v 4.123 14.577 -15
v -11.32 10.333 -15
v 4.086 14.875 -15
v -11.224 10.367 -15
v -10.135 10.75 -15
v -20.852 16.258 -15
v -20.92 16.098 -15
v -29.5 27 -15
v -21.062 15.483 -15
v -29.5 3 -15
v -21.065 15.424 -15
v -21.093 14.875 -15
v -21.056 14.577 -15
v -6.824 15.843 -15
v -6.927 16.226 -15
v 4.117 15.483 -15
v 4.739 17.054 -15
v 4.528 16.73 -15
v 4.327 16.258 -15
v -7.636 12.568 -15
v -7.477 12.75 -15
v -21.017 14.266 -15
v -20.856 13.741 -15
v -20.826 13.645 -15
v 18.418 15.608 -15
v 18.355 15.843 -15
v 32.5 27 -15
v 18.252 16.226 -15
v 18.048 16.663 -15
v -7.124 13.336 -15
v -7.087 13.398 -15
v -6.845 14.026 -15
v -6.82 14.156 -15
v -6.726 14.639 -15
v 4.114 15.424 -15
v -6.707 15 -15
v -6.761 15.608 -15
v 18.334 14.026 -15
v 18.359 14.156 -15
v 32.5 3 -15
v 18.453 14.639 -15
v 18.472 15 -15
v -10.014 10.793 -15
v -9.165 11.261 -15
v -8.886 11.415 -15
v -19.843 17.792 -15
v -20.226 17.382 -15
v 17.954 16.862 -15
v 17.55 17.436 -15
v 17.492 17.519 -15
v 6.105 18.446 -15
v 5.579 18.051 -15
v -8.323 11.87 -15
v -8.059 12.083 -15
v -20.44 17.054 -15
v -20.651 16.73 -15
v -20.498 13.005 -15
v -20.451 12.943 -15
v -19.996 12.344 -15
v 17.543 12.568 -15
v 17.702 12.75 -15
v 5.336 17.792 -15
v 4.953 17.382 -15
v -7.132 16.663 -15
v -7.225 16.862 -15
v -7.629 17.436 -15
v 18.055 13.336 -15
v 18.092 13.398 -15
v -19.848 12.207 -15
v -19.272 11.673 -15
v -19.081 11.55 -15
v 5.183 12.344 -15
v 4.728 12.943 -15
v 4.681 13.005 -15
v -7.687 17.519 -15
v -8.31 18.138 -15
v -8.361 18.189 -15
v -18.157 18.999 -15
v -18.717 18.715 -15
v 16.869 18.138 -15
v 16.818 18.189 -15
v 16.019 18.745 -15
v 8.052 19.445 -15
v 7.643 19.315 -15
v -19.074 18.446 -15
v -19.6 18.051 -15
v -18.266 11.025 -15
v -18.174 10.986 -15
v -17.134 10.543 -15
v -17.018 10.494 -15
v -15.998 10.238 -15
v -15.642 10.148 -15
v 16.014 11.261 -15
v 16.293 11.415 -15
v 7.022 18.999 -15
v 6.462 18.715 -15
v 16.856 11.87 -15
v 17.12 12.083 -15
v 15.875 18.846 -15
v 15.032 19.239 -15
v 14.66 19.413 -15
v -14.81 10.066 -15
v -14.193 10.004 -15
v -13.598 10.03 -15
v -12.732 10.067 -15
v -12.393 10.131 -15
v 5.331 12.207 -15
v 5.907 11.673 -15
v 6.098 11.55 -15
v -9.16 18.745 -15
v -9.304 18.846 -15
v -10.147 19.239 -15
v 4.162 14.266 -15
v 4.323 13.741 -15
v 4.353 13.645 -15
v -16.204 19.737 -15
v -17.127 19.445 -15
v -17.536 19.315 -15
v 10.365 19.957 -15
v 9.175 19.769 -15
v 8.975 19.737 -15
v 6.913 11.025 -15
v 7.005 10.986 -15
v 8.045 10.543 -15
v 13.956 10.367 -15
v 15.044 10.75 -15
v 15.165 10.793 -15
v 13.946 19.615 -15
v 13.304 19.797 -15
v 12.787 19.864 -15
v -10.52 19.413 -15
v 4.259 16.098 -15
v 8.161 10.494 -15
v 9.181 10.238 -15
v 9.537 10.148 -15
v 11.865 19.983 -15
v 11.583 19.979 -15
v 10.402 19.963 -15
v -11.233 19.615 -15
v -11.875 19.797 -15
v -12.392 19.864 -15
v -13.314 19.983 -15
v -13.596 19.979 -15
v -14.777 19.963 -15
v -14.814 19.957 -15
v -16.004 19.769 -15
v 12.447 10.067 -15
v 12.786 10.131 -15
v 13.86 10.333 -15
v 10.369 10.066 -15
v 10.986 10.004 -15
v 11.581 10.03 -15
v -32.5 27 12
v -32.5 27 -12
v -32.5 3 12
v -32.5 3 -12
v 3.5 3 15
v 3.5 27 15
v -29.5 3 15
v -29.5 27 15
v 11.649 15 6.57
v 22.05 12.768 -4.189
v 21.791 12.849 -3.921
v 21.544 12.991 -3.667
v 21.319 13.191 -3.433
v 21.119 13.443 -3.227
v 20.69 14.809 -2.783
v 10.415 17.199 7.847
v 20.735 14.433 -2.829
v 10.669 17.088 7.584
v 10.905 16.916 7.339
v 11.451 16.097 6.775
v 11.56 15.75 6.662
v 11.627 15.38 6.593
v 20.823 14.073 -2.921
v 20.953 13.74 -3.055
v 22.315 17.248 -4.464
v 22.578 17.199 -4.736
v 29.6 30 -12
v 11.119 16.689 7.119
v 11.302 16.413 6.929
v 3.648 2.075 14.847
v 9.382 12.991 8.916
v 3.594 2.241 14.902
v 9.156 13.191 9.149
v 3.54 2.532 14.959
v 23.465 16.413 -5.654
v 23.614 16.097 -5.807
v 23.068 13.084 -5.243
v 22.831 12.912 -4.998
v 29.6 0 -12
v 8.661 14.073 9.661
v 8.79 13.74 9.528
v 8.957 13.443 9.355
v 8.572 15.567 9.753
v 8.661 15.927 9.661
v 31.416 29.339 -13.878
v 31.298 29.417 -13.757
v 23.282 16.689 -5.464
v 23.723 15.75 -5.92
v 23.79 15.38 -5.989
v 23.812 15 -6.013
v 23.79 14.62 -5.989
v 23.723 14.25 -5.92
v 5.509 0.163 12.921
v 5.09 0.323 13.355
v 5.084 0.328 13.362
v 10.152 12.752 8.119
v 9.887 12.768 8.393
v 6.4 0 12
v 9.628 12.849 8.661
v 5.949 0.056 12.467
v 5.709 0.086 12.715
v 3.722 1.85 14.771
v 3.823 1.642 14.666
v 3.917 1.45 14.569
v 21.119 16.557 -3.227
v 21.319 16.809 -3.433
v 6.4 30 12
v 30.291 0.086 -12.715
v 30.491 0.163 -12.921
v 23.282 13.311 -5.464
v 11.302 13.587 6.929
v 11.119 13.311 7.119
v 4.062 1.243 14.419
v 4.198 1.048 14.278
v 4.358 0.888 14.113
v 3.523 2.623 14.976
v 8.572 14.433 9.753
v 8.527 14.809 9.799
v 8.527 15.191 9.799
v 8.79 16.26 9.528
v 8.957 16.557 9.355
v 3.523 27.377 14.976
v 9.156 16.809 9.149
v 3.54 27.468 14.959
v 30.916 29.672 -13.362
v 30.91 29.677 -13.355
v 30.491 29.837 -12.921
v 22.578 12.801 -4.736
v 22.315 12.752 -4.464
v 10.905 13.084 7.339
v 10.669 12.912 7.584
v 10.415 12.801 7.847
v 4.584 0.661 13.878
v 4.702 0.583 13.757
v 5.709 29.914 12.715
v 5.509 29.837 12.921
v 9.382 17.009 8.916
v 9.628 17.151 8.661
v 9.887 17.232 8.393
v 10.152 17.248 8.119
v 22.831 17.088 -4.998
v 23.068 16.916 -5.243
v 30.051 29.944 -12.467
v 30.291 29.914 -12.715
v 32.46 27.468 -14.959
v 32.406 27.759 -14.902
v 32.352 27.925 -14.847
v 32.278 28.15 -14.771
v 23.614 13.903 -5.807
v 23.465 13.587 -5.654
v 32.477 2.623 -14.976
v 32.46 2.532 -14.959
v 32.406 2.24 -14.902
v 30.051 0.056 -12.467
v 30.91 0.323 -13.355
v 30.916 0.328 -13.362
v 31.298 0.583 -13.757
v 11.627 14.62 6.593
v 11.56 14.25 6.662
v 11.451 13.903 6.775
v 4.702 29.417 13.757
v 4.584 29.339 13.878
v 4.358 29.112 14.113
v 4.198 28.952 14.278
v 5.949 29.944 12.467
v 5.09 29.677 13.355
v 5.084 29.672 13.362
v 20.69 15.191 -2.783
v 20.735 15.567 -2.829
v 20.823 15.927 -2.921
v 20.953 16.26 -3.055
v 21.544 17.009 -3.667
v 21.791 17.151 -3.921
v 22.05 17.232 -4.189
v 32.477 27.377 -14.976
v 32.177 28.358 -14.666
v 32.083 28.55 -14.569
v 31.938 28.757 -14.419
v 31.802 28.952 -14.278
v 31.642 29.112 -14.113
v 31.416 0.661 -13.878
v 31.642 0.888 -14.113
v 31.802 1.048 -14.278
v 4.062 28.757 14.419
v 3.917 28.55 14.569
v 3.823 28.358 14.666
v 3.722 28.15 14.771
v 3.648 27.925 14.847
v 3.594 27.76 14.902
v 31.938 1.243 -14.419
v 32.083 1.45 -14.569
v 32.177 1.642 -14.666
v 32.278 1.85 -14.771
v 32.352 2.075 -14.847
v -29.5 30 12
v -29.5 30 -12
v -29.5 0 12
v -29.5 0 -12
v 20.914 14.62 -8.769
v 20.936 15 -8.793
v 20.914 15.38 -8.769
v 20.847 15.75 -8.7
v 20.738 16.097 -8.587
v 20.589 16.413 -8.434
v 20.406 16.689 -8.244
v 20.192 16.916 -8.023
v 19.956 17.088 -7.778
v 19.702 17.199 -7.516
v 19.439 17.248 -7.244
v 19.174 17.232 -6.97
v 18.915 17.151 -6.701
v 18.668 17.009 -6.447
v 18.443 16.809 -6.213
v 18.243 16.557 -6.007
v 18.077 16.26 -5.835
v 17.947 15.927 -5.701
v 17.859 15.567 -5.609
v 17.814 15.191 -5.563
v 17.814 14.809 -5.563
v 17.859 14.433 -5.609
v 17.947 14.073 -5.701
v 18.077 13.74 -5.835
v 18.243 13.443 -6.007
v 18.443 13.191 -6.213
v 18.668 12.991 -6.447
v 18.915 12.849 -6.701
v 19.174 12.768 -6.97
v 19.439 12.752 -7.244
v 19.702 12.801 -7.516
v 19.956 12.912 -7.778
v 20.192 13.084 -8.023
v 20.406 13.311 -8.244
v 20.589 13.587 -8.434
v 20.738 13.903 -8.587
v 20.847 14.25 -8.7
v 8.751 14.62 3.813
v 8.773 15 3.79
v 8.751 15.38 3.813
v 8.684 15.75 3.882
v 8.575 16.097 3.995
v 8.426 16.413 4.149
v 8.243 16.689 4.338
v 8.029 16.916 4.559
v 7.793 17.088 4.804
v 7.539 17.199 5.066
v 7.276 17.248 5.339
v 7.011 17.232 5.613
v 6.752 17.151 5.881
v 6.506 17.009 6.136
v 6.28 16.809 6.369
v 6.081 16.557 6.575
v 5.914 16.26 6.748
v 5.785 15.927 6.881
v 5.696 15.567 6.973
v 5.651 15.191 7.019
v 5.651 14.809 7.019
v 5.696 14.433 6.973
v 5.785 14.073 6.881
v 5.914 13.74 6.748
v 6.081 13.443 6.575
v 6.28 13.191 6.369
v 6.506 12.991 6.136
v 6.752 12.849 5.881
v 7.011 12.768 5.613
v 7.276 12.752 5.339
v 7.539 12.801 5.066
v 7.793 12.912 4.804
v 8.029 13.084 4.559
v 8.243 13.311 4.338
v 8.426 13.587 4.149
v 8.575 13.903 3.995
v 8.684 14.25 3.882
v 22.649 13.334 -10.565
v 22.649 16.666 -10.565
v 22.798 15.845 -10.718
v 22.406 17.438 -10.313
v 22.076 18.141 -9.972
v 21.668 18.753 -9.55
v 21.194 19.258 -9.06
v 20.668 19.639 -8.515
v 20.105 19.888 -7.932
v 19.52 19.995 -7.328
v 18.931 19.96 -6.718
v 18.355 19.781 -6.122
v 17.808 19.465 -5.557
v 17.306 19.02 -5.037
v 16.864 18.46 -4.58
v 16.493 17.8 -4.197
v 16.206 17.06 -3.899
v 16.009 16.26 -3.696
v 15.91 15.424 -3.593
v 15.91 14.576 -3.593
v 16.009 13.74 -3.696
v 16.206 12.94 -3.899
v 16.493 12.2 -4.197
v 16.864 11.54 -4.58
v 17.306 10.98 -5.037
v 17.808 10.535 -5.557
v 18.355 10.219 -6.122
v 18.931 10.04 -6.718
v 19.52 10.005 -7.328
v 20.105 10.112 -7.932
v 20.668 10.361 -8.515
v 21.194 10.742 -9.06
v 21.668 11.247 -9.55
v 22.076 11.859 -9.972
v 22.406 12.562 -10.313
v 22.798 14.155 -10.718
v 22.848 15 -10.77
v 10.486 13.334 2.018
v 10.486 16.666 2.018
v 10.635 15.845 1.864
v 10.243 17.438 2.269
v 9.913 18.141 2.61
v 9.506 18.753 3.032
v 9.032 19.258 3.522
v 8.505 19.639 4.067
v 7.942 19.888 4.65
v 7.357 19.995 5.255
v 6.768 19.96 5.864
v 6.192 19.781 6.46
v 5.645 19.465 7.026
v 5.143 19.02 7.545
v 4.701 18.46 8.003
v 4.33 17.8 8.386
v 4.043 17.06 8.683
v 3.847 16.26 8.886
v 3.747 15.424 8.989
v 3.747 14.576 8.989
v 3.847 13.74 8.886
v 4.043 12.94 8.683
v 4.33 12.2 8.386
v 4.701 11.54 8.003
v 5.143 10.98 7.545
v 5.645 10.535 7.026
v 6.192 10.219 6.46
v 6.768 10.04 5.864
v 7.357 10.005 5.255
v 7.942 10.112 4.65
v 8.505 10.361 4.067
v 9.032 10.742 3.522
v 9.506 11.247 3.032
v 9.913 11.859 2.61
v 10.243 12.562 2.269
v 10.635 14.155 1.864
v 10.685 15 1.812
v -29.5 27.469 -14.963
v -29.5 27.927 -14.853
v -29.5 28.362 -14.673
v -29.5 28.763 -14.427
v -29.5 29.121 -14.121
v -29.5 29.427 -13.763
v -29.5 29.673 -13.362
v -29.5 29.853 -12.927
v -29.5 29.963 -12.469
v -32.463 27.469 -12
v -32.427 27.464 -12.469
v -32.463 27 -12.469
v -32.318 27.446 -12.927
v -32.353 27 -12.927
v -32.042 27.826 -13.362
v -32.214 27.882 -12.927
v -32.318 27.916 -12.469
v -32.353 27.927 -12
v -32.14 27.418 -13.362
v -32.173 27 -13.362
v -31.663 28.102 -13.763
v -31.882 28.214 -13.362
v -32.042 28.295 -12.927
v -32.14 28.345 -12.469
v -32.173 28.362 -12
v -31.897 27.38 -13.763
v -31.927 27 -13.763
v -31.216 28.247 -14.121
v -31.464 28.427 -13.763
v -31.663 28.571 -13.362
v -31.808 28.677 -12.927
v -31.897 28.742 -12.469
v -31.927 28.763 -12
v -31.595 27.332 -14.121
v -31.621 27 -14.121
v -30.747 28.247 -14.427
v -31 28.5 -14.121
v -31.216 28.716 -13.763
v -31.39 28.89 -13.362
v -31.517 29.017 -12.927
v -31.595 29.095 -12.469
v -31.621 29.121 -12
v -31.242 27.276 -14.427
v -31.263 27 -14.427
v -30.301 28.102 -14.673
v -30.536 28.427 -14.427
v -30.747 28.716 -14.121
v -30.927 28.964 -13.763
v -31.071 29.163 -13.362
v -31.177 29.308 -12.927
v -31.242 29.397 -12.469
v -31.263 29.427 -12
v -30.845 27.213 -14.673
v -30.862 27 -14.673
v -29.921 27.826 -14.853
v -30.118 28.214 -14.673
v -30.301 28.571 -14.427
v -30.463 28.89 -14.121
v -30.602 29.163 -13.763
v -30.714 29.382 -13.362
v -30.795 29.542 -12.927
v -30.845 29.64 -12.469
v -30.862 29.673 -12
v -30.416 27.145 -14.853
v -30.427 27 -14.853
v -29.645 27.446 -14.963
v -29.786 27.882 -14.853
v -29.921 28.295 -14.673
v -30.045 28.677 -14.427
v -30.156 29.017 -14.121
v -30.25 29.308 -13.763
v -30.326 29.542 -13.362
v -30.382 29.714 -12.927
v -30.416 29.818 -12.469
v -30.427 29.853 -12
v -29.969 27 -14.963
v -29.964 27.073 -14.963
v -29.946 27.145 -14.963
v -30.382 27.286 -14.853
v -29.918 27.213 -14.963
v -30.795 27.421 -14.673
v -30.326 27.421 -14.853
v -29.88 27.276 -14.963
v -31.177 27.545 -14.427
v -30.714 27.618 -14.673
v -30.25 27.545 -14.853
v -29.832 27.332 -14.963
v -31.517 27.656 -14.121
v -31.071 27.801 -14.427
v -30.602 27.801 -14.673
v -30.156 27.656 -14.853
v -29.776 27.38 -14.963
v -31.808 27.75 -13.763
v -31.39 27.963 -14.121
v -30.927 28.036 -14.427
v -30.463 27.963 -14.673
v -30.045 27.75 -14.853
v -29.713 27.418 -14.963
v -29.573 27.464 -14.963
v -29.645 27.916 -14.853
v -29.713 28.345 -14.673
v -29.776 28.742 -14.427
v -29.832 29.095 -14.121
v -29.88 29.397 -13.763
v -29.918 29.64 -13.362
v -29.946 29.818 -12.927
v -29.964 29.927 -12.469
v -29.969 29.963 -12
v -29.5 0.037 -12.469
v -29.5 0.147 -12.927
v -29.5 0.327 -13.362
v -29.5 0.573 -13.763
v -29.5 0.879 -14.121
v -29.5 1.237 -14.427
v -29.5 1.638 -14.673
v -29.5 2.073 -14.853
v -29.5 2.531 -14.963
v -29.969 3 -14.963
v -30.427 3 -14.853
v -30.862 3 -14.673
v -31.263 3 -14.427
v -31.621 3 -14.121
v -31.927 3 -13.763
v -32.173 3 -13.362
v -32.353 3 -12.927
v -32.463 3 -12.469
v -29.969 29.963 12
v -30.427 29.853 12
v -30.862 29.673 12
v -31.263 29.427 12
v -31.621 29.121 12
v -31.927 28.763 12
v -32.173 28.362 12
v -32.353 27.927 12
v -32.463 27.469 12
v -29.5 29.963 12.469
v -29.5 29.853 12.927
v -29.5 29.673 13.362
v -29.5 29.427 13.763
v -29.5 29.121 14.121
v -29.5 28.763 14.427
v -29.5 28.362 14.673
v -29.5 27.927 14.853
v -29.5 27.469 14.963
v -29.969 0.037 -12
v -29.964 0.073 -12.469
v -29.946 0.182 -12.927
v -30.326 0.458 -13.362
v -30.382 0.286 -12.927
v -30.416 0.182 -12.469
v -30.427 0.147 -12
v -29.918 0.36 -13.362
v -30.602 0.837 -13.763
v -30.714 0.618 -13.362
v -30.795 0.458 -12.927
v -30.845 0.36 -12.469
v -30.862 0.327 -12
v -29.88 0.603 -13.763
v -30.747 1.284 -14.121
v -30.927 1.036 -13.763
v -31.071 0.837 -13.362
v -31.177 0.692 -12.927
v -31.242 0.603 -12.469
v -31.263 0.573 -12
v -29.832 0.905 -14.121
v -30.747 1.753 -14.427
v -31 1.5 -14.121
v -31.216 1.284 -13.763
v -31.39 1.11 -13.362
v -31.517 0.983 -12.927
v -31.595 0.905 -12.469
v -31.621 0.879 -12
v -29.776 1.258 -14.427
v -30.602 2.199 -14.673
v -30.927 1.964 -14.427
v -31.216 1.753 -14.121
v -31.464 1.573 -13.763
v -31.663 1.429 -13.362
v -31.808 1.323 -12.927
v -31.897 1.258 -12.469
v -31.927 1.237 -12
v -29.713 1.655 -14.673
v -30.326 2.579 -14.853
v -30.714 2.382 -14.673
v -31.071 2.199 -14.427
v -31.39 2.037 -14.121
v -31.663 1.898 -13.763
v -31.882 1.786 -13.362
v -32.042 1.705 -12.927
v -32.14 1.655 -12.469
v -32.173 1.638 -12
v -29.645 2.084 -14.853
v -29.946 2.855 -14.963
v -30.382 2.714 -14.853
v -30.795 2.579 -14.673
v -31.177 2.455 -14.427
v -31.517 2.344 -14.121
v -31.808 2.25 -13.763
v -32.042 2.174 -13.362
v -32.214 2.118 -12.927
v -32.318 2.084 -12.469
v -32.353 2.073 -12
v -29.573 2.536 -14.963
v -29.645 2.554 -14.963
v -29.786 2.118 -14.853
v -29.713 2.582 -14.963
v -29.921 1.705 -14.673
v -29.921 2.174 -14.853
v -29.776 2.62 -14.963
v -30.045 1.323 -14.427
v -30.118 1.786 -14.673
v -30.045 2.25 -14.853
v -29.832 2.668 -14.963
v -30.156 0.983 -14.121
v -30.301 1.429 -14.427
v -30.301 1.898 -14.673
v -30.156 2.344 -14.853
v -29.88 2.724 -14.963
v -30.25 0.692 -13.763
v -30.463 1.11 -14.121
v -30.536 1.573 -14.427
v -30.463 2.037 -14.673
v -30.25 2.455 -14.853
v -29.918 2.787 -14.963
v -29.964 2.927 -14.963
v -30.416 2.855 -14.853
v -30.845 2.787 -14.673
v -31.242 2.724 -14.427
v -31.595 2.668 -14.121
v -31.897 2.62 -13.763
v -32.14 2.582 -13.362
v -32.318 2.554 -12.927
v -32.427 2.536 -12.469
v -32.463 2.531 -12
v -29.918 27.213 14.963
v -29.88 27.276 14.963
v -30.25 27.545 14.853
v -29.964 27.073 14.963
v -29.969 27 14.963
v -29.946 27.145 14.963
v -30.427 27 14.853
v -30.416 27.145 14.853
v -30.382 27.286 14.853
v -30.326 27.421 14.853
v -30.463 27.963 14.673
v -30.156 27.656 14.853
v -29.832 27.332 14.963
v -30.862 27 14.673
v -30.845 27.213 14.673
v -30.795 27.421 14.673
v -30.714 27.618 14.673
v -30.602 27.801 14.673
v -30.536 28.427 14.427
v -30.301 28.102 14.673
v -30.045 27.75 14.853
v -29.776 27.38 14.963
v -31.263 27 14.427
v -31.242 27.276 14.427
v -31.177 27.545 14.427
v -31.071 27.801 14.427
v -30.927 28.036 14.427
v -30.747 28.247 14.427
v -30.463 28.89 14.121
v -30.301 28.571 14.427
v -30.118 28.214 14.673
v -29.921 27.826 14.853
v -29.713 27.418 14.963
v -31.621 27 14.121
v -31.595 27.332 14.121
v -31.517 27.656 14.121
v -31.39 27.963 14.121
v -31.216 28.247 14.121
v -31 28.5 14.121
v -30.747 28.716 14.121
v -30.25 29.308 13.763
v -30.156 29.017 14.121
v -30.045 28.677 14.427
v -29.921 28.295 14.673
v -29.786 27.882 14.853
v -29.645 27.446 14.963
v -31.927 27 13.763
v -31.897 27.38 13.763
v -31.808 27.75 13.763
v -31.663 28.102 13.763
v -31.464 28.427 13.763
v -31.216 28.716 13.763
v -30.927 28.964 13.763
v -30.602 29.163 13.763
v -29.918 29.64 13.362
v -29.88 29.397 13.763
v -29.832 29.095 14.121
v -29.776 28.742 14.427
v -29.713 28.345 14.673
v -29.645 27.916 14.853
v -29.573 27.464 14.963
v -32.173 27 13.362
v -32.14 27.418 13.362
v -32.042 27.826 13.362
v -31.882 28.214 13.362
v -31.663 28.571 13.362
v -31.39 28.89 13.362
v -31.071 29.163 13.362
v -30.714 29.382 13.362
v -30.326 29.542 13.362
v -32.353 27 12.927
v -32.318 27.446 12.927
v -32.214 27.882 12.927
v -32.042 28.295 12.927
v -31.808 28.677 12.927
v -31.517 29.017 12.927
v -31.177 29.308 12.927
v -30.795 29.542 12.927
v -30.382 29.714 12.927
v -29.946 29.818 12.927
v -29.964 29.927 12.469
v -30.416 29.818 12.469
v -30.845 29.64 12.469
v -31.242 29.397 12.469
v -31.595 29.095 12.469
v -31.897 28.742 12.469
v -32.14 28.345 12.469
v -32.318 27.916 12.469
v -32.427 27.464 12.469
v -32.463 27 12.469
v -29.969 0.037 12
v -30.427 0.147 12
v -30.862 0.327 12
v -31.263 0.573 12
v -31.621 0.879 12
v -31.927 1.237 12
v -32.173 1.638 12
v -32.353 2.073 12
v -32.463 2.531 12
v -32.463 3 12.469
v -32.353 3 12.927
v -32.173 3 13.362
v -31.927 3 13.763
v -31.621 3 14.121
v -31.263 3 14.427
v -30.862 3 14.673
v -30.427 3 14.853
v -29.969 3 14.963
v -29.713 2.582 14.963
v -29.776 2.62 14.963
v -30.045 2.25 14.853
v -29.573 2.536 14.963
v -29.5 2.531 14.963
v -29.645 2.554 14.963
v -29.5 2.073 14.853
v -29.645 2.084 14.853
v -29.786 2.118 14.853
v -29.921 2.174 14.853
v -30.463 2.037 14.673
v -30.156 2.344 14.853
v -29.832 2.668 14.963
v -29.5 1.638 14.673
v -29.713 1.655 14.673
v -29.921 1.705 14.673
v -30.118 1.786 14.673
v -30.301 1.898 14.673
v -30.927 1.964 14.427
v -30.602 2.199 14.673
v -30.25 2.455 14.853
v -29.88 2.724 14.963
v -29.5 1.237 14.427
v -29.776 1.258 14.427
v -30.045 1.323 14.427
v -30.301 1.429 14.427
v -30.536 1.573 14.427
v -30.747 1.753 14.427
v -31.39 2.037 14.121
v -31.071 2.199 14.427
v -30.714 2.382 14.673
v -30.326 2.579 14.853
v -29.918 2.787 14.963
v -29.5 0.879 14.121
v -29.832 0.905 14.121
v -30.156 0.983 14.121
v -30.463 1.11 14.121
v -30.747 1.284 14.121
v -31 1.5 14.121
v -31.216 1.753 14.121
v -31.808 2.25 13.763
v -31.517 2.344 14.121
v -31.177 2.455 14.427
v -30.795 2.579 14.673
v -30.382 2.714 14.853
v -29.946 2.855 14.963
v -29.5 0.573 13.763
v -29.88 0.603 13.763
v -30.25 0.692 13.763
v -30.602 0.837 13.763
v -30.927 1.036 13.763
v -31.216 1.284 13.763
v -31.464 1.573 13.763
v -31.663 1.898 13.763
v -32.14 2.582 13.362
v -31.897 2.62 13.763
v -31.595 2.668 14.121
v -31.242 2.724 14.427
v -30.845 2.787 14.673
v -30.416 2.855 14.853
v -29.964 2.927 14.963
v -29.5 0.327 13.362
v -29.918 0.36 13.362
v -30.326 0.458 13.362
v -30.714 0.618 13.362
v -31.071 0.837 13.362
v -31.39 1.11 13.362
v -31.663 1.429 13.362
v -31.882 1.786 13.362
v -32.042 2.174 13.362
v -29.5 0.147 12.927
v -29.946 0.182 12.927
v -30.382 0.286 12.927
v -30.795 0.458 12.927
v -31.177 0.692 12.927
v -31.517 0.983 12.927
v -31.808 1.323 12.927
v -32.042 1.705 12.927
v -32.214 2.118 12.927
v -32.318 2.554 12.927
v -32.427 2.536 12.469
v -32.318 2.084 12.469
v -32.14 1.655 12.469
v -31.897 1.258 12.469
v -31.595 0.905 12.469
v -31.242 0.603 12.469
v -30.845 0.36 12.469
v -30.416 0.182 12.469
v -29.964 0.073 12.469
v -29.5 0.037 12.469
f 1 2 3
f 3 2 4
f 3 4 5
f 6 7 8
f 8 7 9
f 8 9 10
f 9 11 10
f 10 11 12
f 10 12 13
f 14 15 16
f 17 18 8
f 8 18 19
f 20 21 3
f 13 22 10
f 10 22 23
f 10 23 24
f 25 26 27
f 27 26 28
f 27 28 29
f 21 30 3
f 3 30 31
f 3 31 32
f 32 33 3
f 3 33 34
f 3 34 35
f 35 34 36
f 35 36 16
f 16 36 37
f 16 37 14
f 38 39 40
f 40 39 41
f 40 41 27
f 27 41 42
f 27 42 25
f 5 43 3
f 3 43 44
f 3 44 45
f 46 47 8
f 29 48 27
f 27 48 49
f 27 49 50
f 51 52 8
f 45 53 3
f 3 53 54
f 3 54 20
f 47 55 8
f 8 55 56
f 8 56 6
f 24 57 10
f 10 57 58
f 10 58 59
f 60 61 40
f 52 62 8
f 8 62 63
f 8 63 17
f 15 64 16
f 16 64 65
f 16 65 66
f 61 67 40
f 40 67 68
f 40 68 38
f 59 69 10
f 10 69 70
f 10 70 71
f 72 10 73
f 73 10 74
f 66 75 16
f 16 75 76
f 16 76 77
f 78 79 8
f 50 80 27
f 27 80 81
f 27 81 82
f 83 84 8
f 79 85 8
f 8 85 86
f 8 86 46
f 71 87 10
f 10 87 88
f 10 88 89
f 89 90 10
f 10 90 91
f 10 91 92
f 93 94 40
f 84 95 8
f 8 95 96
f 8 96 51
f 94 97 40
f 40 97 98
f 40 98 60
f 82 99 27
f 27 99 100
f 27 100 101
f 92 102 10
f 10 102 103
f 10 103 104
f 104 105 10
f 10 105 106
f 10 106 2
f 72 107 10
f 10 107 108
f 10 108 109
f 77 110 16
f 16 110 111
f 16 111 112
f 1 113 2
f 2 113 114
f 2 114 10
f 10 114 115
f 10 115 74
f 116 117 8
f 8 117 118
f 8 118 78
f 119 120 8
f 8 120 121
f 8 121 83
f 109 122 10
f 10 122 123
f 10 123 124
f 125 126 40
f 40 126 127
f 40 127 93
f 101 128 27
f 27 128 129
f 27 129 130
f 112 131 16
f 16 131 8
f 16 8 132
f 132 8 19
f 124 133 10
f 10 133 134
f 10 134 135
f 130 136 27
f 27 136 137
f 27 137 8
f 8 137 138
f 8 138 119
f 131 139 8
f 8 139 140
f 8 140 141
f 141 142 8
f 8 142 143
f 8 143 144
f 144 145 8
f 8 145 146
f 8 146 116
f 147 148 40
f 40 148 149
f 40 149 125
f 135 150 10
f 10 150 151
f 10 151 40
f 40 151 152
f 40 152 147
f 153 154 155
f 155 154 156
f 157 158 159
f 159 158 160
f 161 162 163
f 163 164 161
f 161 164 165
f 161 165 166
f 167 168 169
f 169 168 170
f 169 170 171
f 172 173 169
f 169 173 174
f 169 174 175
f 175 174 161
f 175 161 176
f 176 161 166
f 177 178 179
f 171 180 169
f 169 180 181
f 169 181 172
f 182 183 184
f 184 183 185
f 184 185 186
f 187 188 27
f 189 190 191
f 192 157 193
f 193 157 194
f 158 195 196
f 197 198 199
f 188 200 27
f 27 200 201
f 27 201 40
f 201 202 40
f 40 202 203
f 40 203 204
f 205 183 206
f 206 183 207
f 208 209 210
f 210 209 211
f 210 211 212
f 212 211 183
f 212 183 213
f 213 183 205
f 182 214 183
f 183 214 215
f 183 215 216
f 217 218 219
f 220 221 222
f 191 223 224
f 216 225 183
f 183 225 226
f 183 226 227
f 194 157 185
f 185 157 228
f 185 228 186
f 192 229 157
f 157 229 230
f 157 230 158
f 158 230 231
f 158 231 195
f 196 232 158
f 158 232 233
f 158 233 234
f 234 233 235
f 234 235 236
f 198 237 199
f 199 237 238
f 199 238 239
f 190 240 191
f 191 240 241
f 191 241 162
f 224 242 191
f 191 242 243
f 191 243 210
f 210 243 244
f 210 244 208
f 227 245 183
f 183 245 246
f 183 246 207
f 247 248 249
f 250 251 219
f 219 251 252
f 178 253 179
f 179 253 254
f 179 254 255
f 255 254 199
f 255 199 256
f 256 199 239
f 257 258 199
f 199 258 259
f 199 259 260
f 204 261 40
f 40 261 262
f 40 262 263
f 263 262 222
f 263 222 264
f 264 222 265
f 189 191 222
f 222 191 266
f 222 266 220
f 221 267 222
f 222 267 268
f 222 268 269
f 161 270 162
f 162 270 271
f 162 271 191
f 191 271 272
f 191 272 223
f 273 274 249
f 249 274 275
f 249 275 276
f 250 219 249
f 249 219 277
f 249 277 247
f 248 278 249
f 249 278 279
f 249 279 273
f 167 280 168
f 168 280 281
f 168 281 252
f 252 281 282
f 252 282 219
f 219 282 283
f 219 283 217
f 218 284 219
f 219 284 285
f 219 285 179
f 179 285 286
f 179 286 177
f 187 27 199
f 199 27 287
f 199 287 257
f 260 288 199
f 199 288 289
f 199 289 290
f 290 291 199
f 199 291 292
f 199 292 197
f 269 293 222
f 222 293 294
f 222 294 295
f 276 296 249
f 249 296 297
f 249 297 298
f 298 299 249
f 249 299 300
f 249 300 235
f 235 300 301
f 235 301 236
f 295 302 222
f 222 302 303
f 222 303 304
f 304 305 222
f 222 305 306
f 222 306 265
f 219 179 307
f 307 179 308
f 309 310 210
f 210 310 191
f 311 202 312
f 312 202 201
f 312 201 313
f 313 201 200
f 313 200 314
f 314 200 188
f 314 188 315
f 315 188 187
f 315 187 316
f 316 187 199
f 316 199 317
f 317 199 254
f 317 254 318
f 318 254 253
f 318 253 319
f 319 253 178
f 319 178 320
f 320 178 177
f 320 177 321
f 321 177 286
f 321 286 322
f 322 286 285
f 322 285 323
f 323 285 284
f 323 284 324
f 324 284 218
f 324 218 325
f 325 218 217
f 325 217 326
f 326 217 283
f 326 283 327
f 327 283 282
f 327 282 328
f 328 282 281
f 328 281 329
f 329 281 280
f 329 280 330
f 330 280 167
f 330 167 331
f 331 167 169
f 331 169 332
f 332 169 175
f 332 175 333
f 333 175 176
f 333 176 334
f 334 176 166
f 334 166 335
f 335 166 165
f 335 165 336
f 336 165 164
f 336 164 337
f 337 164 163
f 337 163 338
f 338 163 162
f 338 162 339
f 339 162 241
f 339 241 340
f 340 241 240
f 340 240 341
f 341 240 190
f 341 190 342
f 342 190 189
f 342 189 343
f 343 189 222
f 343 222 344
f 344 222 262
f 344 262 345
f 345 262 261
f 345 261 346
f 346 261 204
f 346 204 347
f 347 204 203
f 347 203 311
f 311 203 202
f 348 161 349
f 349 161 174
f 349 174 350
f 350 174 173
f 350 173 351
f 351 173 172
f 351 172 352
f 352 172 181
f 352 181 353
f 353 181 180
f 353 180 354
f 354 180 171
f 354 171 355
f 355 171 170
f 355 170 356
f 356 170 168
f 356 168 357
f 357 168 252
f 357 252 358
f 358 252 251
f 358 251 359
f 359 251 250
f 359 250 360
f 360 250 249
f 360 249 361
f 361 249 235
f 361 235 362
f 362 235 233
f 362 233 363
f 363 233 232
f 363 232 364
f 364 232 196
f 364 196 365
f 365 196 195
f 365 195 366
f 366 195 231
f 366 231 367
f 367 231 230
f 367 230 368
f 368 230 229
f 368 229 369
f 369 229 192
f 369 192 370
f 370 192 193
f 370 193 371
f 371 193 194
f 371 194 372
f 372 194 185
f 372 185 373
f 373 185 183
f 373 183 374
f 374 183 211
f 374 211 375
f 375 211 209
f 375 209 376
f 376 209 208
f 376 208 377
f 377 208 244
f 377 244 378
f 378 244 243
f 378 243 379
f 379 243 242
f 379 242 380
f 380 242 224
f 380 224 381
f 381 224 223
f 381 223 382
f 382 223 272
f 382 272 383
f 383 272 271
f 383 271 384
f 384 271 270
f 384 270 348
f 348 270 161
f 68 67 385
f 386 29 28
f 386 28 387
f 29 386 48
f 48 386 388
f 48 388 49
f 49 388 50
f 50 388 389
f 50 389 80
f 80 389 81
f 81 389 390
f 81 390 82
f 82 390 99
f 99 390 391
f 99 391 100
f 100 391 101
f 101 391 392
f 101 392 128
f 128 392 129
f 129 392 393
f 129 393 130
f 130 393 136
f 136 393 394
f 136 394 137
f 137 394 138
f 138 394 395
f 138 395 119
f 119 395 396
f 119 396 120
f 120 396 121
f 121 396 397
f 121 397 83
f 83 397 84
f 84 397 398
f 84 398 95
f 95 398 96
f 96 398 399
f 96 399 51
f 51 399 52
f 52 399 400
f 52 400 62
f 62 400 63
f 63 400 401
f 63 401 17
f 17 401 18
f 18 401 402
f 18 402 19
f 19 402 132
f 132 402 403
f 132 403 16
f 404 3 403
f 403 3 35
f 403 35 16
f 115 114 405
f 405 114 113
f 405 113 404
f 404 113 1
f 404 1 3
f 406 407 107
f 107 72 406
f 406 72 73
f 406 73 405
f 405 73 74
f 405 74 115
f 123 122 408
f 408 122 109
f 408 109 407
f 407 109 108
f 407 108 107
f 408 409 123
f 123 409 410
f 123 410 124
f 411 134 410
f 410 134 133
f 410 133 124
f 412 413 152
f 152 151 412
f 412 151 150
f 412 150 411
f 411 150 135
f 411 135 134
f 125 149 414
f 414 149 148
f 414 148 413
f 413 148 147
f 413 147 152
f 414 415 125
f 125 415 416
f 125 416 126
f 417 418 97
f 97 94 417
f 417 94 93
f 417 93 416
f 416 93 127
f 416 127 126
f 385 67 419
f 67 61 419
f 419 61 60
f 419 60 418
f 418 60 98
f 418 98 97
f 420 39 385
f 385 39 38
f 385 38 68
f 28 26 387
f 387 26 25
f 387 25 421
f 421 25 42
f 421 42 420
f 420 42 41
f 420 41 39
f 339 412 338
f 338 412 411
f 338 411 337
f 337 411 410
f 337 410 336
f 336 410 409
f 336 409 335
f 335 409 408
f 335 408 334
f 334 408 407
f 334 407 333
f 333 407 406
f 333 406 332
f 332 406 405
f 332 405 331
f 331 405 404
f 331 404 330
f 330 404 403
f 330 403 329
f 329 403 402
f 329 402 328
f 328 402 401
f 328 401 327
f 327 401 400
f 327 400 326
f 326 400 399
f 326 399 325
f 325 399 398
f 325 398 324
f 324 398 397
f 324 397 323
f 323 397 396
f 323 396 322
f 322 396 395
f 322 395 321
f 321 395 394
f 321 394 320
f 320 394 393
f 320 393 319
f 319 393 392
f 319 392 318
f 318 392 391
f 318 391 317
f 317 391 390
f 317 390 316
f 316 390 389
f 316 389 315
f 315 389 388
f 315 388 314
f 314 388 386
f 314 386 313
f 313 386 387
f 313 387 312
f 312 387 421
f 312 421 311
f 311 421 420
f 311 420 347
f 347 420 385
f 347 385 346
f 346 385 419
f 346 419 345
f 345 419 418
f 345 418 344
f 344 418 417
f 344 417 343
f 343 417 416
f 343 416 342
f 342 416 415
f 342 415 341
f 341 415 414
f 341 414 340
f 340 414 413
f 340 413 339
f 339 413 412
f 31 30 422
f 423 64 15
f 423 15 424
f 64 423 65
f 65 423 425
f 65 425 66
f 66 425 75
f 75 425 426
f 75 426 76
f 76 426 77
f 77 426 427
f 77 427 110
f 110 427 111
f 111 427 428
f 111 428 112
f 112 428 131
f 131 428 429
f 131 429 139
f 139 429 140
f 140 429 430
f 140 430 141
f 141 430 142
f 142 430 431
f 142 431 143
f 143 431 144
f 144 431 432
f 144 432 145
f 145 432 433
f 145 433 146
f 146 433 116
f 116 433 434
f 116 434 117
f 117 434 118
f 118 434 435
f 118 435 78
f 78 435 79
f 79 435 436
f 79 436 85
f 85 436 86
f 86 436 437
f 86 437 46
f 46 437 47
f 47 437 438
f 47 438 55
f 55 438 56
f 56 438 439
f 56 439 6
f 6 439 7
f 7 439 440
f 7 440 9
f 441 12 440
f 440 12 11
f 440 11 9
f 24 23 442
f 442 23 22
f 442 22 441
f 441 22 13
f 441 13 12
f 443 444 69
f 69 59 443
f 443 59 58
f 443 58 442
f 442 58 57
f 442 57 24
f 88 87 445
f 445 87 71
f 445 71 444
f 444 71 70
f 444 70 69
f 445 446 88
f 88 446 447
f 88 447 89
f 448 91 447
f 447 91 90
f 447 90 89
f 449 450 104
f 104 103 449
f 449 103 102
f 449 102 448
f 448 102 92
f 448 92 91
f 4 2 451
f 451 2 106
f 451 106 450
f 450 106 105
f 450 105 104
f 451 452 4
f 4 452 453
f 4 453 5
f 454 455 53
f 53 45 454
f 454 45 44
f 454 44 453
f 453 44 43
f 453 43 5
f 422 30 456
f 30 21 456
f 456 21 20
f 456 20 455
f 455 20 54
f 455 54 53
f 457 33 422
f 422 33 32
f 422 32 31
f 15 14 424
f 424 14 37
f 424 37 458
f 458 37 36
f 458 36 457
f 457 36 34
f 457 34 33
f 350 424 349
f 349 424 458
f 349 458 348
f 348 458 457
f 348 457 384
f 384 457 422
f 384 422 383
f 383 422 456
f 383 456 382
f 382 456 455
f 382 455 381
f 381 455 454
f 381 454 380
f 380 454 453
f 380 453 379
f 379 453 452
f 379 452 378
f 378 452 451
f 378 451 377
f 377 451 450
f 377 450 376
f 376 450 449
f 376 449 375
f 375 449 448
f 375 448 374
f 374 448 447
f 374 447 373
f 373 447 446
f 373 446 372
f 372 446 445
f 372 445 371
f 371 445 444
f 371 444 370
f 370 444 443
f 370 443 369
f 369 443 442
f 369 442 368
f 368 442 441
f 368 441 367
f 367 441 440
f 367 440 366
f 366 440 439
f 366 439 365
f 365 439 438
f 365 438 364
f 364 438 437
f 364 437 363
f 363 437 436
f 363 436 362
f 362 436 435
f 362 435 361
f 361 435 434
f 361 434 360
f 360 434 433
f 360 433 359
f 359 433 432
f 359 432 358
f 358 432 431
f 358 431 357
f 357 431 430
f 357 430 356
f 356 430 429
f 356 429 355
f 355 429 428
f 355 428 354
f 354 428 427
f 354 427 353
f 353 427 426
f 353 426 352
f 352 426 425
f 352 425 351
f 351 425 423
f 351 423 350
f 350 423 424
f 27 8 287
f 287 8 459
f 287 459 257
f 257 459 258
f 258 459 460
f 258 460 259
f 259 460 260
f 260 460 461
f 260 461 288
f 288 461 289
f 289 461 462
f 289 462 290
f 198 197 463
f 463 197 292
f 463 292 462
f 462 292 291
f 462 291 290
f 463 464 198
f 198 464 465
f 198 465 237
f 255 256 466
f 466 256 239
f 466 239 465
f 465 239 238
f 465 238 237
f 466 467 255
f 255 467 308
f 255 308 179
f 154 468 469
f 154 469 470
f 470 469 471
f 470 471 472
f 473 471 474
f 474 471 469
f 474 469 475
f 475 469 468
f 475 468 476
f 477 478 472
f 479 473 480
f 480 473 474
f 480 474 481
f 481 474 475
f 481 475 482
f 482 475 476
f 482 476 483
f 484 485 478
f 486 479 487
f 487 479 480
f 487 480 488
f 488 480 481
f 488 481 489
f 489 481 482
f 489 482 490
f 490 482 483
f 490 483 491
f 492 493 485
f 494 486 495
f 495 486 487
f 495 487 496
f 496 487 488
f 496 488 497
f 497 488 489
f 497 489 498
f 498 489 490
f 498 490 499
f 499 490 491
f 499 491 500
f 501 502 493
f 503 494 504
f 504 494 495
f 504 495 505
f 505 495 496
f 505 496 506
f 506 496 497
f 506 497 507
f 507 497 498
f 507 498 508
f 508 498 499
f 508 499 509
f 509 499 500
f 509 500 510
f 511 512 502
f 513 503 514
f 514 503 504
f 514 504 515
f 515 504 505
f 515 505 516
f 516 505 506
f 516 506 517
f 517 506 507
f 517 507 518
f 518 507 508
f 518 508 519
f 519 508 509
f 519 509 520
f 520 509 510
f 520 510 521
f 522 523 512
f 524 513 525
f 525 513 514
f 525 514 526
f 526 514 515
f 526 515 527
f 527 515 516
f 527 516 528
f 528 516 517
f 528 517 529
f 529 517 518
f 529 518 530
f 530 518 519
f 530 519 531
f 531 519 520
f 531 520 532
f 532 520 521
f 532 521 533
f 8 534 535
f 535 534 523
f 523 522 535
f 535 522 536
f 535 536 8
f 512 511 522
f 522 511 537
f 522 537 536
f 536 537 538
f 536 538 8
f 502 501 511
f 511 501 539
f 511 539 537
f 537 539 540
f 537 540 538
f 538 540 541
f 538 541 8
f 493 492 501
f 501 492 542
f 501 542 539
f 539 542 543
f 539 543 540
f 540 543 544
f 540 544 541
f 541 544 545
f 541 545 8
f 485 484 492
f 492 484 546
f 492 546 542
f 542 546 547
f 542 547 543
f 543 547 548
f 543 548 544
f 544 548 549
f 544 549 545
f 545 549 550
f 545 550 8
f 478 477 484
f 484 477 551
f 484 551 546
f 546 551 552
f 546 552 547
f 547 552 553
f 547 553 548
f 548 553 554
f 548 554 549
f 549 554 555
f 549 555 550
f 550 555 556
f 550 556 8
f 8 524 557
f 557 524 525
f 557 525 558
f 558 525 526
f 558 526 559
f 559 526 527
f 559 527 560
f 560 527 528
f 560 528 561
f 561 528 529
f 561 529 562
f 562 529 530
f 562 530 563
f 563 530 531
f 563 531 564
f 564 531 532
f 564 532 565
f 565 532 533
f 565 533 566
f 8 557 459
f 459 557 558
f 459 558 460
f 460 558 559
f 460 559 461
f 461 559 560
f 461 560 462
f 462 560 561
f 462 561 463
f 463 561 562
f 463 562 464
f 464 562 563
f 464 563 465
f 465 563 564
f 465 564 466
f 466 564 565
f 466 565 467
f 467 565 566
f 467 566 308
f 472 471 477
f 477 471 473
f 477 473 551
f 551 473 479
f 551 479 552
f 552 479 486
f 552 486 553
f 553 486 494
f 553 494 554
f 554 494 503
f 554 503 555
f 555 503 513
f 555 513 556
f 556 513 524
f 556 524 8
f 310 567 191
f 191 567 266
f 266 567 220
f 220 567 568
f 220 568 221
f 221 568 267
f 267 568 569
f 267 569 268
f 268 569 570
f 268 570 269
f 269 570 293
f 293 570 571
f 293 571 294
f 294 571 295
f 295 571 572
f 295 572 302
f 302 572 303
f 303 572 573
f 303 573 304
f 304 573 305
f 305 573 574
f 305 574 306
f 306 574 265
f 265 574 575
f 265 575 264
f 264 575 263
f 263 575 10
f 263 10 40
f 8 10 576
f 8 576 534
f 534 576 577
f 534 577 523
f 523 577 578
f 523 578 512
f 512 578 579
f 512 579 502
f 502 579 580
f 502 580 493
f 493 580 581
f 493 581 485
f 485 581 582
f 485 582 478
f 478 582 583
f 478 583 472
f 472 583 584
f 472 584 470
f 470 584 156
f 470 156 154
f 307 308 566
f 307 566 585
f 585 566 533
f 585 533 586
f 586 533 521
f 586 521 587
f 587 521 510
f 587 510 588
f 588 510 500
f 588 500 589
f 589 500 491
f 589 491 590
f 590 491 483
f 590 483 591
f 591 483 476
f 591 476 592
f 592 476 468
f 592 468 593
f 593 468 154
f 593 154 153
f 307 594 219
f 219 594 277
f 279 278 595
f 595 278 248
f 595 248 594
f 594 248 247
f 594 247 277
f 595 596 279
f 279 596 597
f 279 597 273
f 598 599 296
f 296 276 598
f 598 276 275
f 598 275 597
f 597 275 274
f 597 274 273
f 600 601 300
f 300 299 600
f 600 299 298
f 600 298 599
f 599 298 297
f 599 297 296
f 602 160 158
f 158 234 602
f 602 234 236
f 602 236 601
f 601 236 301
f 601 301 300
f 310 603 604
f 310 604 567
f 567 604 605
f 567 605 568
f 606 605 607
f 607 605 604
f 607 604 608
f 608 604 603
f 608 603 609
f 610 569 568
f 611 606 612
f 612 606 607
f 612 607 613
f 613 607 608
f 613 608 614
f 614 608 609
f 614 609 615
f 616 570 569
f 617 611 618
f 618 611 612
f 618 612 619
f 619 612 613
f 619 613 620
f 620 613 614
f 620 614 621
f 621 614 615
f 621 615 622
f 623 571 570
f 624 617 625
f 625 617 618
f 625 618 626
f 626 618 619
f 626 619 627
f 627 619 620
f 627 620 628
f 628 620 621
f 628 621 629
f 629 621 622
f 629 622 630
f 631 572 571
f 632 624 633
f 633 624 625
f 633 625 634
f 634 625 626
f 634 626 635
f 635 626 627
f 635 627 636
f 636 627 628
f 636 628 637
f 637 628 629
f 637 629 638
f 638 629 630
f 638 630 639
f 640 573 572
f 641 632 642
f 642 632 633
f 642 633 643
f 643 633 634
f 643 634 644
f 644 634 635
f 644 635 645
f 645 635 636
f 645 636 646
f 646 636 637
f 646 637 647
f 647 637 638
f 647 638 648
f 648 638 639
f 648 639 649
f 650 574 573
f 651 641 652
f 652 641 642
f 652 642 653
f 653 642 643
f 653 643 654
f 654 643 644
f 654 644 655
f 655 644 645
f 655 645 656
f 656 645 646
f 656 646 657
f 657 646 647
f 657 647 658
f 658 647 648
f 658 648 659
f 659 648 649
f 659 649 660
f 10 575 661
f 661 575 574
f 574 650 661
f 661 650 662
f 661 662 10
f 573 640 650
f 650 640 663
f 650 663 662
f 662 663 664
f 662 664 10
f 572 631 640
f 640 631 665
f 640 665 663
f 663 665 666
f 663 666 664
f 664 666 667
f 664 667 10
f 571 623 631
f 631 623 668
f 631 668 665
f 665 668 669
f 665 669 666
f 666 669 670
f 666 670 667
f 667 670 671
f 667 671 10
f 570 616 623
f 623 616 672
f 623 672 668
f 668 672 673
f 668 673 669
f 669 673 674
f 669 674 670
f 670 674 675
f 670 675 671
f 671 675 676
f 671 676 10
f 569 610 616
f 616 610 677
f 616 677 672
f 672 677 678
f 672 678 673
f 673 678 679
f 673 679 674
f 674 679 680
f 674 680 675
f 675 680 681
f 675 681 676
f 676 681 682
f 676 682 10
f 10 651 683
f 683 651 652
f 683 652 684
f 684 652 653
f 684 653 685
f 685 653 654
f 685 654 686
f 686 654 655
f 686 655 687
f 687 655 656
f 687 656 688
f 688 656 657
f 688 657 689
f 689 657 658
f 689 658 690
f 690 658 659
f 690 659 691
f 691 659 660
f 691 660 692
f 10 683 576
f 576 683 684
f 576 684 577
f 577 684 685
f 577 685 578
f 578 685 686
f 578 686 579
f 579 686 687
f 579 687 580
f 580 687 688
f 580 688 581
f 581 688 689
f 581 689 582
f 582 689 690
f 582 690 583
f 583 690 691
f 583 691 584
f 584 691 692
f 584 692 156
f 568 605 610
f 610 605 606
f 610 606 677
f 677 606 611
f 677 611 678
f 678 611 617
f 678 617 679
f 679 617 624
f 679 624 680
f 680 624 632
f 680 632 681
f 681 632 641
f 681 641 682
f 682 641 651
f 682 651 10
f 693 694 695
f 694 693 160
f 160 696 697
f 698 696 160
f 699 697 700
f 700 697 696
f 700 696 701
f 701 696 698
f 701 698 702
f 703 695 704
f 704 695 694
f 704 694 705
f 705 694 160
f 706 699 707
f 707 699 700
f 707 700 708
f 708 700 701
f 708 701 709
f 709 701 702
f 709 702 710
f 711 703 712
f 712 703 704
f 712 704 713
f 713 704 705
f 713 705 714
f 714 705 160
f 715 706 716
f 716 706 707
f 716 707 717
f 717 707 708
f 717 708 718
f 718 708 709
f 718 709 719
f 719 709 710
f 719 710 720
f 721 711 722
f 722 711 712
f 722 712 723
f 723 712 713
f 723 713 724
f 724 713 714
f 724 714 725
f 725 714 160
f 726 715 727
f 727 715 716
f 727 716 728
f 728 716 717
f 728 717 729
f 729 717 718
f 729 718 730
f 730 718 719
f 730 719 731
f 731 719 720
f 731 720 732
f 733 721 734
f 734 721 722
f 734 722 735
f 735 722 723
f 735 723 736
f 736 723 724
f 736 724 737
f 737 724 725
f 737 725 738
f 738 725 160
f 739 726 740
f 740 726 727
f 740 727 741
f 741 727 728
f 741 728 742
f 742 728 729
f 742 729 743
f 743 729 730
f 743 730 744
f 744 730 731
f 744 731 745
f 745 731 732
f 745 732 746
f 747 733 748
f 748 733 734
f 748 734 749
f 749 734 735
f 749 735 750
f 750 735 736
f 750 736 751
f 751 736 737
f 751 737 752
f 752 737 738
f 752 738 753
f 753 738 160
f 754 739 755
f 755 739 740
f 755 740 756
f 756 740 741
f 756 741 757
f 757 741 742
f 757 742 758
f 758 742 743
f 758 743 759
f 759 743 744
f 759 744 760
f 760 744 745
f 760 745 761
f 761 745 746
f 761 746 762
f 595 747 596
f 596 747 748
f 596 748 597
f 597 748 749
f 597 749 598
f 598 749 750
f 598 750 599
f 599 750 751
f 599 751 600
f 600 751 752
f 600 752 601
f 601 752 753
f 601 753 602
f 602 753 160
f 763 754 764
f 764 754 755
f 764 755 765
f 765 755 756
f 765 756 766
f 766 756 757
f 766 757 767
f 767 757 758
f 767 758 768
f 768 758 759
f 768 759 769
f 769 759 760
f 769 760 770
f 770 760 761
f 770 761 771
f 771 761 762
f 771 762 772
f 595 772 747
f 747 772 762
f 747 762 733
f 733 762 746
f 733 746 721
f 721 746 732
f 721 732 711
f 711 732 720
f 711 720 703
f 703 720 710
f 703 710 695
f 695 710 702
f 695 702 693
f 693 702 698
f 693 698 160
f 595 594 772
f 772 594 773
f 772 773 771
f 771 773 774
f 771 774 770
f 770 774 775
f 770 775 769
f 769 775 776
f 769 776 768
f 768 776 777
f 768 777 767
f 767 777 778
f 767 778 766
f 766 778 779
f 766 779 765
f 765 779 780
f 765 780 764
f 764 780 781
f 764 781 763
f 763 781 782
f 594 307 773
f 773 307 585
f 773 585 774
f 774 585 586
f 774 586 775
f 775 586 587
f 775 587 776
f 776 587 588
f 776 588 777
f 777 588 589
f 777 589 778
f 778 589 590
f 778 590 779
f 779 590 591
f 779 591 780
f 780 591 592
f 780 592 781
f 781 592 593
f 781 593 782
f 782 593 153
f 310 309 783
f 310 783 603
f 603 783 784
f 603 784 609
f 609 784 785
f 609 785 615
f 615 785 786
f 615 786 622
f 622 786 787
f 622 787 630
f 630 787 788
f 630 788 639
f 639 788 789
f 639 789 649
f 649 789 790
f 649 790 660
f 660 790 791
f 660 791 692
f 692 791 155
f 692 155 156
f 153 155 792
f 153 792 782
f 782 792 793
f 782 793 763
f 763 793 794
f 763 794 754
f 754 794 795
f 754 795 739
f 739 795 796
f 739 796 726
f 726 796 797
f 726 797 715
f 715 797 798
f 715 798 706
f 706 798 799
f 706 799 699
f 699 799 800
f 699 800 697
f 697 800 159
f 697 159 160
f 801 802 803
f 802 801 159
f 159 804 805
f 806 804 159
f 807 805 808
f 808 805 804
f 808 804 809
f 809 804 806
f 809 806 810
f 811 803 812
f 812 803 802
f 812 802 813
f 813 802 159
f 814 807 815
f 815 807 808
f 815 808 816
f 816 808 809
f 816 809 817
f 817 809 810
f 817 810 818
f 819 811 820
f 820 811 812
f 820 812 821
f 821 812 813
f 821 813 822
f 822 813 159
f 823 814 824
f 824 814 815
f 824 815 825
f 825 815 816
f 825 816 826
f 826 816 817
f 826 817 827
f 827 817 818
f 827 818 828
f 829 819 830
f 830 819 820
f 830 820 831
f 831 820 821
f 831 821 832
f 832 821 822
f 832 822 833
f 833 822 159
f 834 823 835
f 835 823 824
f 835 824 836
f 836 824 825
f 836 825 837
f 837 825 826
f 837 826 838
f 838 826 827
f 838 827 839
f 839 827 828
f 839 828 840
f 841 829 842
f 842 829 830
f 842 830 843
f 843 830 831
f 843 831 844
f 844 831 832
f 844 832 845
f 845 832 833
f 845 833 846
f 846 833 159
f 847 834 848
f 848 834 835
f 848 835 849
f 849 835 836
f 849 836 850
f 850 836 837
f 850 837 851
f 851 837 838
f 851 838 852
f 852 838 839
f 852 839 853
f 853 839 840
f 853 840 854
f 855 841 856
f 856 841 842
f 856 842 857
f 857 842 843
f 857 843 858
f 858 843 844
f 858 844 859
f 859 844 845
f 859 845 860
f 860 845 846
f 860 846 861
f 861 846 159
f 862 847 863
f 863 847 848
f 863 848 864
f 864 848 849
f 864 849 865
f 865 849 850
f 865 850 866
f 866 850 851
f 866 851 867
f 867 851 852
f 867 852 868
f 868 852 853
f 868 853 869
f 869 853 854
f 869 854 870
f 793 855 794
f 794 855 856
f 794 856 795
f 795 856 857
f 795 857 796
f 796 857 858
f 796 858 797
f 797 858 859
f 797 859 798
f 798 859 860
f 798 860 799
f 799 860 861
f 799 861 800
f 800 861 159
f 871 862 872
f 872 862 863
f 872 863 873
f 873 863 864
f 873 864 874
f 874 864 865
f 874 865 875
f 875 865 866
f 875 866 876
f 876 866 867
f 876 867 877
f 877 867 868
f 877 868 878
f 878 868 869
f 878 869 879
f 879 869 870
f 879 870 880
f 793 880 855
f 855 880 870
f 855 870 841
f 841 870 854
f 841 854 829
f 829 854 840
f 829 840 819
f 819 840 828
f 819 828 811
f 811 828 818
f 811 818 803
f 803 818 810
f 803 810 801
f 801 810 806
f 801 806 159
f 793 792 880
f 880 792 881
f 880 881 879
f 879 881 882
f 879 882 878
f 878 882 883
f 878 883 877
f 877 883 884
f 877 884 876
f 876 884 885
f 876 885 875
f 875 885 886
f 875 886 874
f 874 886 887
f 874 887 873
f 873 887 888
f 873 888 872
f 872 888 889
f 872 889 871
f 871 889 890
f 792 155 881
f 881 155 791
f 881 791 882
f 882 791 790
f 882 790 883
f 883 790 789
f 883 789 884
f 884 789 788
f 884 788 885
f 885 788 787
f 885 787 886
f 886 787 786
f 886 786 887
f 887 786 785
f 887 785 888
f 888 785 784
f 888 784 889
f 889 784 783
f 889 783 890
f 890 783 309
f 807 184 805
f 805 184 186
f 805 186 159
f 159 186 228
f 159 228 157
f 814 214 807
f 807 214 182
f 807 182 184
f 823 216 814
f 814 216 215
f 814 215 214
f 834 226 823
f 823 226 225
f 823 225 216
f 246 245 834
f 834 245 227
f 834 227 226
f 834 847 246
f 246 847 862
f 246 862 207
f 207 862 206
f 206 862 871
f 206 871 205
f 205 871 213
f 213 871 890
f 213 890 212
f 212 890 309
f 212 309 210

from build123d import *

# Parameters (mm, degrees)
BOSS_EXTRUDE1_DEPTH = 30
SKETCH2_R           = 2.25
CUT_EXTRUDE1_DEPTH  = 57.77507973
SKETCH3_R           = 5
CUT_EXTRUDE2_DEPTH  = 54.530698882
FILLET1_R           = 3


with BuildPart() as part:
    # Sketch1 → Boss-Extrude1 (new body)
    with BuildSketch(Plane(origin=(0, 0, 0), x_dir=(1, 0, 0), z_dir=(0, 1, 0))):
        Polygon((3.5, -15), (32.5, 15), (-32.5, 15), (-32.5, -15), align=None)
    extrude(amount=BOSS_EXTRUDE1_DEPTH)

    # Sketch2 → Cut-Extrude1 (cut, through all)
    with BuildSketch(Plane(origin=(9.304997128, 0, 8.994830557), x_dir=(0.6950220968474751, 0, -0.7189883760491118), z_dir=(0.7189883760491118, 0, 0.6950220968474751))):
        with Locations((18.623043788, 15)):
            Circle(SKETCH2_R)
        with Locations((1.123043788, 15)):
            Circle(SKETCH2_R)
    extrude(amount=-CUT_EXTRUDE1_DEPTH, mode=Mode.SUBTRACT)

    # Sketch3 → Cut-Extrude2 (cut, through all)
    with BuildSketch(Plane(origin=(6.429043624, 0, 6.21474217), x_dir=(0.6950220968474751, 0, -0.7189883760491118), z_dir=(0.7189883760491118, 0, 0.6950220968474751))):
        with Locations((18.623043788, 15)):
            Circle(SKETCH3_R)
        with Locations((1.123043788, 15)):
            Circle(SKETCH3_R)
    extrude(amount=-CUT_EXTRUDE2_DEPTH, mode=Mode.SUBTRACT)

    # Fillet1
    fillet1_edges = [part.edges().sort_by_distance(p)[0] for p in [
        (-14.5, 30, 15),
        (0, 30, -15),
        (-14.5, 0, 15),
        (-32.5, 0, 0),
        (0, 0, -15),
        (-32.5, 30, 0),
        (-32.5, 15, 15),
        (-32.5, 15, -15),
    ]]
    fillet(fillet1_edges, radius=FILLET1_R)


solid = part.part
